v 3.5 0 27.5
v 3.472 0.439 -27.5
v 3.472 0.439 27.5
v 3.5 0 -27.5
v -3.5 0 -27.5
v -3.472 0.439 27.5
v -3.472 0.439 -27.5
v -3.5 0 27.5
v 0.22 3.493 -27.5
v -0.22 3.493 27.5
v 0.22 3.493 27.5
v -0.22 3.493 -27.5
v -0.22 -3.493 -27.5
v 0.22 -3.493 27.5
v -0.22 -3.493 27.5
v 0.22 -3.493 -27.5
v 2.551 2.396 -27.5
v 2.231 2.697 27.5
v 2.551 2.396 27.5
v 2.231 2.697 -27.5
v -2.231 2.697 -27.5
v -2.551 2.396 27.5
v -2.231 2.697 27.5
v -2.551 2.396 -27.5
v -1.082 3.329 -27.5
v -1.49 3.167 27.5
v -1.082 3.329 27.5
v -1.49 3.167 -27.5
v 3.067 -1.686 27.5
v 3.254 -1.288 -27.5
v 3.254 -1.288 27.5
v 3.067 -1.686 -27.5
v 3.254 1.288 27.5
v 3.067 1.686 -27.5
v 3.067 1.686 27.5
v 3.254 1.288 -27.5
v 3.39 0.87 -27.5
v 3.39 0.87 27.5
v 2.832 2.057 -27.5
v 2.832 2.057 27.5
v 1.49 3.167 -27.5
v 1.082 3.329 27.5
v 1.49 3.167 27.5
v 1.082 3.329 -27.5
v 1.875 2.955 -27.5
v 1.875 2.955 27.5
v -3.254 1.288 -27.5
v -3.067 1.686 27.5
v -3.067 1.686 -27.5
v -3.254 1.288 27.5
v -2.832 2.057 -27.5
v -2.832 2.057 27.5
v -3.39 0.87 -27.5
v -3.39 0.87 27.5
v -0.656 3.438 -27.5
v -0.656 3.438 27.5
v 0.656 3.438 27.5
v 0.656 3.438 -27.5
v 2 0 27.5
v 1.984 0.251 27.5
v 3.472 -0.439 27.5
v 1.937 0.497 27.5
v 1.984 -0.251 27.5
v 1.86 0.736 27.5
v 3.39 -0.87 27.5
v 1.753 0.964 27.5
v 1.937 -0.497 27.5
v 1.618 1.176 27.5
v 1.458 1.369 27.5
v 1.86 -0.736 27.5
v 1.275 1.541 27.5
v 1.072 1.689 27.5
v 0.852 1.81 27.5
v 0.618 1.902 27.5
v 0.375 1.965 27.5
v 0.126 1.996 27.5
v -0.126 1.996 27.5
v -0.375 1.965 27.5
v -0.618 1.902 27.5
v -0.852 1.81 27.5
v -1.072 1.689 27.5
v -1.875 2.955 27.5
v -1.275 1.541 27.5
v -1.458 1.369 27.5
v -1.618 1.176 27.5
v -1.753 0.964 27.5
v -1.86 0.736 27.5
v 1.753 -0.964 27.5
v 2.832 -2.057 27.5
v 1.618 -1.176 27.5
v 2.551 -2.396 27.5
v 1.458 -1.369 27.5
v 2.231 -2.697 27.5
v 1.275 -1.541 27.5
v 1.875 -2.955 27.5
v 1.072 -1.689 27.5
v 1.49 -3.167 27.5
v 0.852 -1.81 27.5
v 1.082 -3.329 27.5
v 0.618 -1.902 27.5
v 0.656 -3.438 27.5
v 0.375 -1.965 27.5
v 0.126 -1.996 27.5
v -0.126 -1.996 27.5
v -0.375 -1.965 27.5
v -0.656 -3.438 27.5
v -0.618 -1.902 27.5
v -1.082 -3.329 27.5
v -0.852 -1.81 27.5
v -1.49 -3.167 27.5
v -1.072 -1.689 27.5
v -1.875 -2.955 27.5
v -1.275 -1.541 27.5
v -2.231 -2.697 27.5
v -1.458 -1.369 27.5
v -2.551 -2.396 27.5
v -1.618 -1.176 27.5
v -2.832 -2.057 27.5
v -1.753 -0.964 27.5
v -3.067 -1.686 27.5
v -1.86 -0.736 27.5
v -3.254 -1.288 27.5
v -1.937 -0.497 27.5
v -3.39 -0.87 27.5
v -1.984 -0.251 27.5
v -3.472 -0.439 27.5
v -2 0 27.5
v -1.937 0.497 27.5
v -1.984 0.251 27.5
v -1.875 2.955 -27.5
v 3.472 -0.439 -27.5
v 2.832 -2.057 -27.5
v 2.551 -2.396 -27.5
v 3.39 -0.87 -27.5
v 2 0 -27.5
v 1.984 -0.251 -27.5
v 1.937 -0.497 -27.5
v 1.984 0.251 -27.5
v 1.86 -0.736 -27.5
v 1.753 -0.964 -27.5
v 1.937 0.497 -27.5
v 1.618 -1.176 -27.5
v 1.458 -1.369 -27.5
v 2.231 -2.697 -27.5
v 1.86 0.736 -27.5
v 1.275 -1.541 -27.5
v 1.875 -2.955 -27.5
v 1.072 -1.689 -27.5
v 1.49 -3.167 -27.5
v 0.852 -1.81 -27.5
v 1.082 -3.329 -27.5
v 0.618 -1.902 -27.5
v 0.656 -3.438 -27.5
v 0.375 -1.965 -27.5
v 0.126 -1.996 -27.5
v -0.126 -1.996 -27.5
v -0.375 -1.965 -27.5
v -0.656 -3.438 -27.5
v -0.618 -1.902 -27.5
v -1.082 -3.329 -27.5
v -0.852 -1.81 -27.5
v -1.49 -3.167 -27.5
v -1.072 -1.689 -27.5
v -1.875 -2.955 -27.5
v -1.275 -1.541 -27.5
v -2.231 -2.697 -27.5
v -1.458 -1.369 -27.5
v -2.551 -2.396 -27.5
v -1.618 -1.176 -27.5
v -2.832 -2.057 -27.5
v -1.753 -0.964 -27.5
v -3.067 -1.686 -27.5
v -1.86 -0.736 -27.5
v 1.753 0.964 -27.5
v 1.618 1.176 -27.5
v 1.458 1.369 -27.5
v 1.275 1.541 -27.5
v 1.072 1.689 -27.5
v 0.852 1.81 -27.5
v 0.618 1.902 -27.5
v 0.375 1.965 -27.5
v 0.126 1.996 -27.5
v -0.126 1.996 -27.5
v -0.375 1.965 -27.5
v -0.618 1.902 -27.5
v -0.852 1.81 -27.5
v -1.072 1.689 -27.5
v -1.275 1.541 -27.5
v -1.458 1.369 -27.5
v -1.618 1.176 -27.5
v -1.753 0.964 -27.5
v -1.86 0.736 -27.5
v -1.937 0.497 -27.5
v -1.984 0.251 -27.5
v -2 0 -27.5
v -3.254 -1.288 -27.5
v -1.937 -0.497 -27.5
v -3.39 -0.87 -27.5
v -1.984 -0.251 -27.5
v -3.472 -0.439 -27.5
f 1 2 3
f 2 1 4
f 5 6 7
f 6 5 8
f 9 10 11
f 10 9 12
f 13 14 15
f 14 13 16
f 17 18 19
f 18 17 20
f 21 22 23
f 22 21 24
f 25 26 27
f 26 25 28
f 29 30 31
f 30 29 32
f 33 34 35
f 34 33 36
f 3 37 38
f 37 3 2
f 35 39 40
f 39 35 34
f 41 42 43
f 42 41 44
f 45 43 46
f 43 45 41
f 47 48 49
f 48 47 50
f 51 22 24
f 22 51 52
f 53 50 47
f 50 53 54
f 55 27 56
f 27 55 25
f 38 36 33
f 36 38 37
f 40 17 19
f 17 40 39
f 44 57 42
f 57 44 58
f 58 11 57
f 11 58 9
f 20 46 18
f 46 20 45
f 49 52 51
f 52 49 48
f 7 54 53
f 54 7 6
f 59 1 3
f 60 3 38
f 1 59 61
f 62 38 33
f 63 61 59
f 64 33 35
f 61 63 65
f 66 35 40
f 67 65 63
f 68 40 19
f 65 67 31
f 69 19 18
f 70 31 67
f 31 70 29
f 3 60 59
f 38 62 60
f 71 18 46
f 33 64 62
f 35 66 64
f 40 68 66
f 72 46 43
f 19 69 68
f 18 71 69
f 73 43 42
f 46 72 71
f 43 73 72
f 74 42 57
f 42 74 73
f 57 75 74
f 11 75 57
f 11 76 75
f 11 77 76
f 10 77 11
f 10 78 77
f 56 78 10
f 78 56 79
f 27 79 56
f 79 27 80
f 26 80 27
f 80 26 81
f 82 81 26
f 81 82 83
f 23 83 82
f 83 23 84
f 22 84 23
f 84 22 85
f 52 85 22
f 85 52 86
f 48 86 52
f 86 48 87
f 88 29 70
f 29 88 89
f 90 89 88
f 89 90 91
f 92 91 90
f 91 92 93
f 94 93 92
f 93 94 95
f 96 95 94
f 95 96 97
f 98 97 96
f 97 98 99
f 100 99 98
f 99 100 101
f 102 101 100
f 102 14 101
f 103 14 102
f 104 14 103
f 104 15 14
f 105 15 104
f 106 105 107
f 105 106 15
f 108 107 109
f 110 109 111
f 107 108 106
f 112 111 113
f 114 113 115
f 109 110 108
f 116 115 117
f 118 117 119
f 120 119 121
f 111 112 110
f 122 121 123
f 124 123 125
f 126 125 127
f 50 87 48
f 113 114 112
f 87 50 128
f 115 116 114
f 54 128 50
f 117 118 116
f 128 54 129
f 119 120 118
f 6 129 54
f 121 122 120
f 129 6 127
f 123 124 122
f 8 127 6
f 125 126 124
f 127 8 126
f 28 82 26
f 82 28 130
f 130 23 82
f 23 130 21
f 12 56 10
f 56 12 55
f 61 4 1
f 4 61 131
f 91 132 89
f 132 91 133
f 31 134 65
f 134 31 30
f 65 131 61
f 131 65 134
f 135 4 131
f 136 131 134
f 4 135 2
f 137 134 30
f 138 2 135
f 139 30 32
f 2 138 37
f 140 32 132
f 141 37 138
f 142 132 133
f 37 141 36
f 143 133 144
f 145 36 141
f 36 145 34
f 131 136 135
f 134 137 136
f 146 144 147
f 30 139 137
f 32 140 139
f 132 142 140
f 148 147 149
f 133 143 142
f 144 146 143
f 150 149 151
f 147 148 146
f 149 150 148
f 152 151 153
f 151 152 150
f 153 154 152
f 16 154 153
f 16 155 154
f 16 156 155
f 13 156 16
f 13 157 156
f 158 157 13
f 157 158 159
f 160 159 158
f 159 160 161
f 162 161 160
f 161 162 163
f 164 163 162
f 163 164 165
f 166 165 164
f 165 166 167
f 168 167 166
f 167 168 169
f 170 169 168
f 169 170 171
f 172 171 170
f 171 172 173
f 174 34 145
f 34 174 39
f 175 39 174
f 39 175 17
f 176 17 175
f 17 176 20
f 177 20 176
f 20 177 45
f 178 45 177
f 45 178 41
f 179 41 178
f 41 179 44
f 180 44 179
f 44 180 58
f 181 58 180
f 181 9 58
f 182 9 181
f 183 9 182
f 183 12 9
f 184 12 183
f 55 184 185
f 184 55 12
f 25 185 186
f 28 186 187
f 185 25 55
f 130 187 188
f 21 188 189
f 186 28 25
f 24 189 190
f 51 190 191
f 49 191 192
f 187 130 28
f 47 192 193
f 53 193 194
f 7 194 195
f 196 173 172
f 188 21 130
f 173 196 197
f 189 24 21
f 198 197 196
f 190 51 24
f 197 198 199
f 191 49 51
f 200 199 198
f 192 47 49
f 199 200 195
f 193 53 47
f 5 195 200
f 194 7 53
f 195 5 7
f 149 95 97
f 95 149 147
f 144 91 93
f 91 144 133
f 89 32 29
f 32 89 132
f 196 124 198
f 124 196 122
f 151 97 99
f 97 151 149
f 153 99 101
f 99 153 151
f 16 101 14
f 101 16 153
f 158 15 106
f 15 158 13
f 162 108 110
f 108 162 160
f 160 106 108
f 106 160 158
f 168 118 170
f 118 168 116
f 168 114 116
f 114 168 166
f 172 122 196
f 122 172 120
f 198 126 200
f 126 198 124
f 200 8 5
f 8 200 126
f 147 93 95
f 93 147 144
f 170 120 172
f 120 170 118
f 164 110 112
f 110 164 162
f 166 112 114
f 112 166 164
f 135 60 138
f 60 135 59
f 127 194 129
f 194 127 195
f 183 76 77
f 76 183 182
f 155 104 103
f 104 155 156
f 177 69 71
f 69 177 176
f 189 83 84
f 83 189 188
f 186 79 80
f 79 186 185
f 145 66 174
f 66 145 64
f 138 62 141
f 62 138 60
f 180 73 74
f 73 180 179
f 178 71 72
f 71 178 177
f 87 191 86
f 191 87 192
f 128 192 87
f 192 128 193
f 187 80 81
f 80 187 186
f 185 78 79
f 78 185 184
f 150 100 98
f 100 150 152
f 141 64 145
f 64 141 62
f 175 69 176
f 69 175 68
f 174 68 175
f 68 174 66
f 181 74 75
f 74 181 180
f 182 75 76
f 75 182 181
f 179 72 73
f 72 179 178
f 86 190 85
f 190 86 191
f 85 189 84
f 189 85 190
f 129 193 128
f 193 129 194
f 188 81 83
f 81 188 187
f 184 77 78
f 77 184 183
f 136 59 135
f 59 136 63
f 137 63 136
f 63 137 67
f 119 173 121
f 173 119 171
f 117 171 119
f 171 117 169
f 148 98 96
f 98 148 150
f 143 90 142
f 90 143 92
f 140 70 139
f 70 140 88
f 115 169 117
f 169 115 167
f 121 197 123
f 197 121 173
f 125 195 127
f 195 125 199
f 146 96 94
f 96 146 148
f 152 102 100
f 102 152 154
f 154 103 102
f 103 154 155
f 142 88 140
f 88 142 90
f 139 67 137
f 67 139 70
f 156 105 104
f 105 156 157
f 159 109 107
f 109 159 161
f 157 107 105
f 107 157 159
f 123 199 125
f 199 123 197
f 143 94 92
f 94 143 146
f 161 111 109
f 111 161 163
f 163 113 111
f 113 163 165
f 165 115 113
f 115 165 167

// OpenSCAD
$fn = 50;


difference() {
	union() {
		translate(v = [0, 0, -27.5000000000]) {
			cylinder(h = 55, r = 3.5000000000);
		}
	}
	union() {
		translate(v = [0, 0, -100.0000000000]) {
			cylinder(h = 200, r = 2.0000000000);
		}
	}
}
